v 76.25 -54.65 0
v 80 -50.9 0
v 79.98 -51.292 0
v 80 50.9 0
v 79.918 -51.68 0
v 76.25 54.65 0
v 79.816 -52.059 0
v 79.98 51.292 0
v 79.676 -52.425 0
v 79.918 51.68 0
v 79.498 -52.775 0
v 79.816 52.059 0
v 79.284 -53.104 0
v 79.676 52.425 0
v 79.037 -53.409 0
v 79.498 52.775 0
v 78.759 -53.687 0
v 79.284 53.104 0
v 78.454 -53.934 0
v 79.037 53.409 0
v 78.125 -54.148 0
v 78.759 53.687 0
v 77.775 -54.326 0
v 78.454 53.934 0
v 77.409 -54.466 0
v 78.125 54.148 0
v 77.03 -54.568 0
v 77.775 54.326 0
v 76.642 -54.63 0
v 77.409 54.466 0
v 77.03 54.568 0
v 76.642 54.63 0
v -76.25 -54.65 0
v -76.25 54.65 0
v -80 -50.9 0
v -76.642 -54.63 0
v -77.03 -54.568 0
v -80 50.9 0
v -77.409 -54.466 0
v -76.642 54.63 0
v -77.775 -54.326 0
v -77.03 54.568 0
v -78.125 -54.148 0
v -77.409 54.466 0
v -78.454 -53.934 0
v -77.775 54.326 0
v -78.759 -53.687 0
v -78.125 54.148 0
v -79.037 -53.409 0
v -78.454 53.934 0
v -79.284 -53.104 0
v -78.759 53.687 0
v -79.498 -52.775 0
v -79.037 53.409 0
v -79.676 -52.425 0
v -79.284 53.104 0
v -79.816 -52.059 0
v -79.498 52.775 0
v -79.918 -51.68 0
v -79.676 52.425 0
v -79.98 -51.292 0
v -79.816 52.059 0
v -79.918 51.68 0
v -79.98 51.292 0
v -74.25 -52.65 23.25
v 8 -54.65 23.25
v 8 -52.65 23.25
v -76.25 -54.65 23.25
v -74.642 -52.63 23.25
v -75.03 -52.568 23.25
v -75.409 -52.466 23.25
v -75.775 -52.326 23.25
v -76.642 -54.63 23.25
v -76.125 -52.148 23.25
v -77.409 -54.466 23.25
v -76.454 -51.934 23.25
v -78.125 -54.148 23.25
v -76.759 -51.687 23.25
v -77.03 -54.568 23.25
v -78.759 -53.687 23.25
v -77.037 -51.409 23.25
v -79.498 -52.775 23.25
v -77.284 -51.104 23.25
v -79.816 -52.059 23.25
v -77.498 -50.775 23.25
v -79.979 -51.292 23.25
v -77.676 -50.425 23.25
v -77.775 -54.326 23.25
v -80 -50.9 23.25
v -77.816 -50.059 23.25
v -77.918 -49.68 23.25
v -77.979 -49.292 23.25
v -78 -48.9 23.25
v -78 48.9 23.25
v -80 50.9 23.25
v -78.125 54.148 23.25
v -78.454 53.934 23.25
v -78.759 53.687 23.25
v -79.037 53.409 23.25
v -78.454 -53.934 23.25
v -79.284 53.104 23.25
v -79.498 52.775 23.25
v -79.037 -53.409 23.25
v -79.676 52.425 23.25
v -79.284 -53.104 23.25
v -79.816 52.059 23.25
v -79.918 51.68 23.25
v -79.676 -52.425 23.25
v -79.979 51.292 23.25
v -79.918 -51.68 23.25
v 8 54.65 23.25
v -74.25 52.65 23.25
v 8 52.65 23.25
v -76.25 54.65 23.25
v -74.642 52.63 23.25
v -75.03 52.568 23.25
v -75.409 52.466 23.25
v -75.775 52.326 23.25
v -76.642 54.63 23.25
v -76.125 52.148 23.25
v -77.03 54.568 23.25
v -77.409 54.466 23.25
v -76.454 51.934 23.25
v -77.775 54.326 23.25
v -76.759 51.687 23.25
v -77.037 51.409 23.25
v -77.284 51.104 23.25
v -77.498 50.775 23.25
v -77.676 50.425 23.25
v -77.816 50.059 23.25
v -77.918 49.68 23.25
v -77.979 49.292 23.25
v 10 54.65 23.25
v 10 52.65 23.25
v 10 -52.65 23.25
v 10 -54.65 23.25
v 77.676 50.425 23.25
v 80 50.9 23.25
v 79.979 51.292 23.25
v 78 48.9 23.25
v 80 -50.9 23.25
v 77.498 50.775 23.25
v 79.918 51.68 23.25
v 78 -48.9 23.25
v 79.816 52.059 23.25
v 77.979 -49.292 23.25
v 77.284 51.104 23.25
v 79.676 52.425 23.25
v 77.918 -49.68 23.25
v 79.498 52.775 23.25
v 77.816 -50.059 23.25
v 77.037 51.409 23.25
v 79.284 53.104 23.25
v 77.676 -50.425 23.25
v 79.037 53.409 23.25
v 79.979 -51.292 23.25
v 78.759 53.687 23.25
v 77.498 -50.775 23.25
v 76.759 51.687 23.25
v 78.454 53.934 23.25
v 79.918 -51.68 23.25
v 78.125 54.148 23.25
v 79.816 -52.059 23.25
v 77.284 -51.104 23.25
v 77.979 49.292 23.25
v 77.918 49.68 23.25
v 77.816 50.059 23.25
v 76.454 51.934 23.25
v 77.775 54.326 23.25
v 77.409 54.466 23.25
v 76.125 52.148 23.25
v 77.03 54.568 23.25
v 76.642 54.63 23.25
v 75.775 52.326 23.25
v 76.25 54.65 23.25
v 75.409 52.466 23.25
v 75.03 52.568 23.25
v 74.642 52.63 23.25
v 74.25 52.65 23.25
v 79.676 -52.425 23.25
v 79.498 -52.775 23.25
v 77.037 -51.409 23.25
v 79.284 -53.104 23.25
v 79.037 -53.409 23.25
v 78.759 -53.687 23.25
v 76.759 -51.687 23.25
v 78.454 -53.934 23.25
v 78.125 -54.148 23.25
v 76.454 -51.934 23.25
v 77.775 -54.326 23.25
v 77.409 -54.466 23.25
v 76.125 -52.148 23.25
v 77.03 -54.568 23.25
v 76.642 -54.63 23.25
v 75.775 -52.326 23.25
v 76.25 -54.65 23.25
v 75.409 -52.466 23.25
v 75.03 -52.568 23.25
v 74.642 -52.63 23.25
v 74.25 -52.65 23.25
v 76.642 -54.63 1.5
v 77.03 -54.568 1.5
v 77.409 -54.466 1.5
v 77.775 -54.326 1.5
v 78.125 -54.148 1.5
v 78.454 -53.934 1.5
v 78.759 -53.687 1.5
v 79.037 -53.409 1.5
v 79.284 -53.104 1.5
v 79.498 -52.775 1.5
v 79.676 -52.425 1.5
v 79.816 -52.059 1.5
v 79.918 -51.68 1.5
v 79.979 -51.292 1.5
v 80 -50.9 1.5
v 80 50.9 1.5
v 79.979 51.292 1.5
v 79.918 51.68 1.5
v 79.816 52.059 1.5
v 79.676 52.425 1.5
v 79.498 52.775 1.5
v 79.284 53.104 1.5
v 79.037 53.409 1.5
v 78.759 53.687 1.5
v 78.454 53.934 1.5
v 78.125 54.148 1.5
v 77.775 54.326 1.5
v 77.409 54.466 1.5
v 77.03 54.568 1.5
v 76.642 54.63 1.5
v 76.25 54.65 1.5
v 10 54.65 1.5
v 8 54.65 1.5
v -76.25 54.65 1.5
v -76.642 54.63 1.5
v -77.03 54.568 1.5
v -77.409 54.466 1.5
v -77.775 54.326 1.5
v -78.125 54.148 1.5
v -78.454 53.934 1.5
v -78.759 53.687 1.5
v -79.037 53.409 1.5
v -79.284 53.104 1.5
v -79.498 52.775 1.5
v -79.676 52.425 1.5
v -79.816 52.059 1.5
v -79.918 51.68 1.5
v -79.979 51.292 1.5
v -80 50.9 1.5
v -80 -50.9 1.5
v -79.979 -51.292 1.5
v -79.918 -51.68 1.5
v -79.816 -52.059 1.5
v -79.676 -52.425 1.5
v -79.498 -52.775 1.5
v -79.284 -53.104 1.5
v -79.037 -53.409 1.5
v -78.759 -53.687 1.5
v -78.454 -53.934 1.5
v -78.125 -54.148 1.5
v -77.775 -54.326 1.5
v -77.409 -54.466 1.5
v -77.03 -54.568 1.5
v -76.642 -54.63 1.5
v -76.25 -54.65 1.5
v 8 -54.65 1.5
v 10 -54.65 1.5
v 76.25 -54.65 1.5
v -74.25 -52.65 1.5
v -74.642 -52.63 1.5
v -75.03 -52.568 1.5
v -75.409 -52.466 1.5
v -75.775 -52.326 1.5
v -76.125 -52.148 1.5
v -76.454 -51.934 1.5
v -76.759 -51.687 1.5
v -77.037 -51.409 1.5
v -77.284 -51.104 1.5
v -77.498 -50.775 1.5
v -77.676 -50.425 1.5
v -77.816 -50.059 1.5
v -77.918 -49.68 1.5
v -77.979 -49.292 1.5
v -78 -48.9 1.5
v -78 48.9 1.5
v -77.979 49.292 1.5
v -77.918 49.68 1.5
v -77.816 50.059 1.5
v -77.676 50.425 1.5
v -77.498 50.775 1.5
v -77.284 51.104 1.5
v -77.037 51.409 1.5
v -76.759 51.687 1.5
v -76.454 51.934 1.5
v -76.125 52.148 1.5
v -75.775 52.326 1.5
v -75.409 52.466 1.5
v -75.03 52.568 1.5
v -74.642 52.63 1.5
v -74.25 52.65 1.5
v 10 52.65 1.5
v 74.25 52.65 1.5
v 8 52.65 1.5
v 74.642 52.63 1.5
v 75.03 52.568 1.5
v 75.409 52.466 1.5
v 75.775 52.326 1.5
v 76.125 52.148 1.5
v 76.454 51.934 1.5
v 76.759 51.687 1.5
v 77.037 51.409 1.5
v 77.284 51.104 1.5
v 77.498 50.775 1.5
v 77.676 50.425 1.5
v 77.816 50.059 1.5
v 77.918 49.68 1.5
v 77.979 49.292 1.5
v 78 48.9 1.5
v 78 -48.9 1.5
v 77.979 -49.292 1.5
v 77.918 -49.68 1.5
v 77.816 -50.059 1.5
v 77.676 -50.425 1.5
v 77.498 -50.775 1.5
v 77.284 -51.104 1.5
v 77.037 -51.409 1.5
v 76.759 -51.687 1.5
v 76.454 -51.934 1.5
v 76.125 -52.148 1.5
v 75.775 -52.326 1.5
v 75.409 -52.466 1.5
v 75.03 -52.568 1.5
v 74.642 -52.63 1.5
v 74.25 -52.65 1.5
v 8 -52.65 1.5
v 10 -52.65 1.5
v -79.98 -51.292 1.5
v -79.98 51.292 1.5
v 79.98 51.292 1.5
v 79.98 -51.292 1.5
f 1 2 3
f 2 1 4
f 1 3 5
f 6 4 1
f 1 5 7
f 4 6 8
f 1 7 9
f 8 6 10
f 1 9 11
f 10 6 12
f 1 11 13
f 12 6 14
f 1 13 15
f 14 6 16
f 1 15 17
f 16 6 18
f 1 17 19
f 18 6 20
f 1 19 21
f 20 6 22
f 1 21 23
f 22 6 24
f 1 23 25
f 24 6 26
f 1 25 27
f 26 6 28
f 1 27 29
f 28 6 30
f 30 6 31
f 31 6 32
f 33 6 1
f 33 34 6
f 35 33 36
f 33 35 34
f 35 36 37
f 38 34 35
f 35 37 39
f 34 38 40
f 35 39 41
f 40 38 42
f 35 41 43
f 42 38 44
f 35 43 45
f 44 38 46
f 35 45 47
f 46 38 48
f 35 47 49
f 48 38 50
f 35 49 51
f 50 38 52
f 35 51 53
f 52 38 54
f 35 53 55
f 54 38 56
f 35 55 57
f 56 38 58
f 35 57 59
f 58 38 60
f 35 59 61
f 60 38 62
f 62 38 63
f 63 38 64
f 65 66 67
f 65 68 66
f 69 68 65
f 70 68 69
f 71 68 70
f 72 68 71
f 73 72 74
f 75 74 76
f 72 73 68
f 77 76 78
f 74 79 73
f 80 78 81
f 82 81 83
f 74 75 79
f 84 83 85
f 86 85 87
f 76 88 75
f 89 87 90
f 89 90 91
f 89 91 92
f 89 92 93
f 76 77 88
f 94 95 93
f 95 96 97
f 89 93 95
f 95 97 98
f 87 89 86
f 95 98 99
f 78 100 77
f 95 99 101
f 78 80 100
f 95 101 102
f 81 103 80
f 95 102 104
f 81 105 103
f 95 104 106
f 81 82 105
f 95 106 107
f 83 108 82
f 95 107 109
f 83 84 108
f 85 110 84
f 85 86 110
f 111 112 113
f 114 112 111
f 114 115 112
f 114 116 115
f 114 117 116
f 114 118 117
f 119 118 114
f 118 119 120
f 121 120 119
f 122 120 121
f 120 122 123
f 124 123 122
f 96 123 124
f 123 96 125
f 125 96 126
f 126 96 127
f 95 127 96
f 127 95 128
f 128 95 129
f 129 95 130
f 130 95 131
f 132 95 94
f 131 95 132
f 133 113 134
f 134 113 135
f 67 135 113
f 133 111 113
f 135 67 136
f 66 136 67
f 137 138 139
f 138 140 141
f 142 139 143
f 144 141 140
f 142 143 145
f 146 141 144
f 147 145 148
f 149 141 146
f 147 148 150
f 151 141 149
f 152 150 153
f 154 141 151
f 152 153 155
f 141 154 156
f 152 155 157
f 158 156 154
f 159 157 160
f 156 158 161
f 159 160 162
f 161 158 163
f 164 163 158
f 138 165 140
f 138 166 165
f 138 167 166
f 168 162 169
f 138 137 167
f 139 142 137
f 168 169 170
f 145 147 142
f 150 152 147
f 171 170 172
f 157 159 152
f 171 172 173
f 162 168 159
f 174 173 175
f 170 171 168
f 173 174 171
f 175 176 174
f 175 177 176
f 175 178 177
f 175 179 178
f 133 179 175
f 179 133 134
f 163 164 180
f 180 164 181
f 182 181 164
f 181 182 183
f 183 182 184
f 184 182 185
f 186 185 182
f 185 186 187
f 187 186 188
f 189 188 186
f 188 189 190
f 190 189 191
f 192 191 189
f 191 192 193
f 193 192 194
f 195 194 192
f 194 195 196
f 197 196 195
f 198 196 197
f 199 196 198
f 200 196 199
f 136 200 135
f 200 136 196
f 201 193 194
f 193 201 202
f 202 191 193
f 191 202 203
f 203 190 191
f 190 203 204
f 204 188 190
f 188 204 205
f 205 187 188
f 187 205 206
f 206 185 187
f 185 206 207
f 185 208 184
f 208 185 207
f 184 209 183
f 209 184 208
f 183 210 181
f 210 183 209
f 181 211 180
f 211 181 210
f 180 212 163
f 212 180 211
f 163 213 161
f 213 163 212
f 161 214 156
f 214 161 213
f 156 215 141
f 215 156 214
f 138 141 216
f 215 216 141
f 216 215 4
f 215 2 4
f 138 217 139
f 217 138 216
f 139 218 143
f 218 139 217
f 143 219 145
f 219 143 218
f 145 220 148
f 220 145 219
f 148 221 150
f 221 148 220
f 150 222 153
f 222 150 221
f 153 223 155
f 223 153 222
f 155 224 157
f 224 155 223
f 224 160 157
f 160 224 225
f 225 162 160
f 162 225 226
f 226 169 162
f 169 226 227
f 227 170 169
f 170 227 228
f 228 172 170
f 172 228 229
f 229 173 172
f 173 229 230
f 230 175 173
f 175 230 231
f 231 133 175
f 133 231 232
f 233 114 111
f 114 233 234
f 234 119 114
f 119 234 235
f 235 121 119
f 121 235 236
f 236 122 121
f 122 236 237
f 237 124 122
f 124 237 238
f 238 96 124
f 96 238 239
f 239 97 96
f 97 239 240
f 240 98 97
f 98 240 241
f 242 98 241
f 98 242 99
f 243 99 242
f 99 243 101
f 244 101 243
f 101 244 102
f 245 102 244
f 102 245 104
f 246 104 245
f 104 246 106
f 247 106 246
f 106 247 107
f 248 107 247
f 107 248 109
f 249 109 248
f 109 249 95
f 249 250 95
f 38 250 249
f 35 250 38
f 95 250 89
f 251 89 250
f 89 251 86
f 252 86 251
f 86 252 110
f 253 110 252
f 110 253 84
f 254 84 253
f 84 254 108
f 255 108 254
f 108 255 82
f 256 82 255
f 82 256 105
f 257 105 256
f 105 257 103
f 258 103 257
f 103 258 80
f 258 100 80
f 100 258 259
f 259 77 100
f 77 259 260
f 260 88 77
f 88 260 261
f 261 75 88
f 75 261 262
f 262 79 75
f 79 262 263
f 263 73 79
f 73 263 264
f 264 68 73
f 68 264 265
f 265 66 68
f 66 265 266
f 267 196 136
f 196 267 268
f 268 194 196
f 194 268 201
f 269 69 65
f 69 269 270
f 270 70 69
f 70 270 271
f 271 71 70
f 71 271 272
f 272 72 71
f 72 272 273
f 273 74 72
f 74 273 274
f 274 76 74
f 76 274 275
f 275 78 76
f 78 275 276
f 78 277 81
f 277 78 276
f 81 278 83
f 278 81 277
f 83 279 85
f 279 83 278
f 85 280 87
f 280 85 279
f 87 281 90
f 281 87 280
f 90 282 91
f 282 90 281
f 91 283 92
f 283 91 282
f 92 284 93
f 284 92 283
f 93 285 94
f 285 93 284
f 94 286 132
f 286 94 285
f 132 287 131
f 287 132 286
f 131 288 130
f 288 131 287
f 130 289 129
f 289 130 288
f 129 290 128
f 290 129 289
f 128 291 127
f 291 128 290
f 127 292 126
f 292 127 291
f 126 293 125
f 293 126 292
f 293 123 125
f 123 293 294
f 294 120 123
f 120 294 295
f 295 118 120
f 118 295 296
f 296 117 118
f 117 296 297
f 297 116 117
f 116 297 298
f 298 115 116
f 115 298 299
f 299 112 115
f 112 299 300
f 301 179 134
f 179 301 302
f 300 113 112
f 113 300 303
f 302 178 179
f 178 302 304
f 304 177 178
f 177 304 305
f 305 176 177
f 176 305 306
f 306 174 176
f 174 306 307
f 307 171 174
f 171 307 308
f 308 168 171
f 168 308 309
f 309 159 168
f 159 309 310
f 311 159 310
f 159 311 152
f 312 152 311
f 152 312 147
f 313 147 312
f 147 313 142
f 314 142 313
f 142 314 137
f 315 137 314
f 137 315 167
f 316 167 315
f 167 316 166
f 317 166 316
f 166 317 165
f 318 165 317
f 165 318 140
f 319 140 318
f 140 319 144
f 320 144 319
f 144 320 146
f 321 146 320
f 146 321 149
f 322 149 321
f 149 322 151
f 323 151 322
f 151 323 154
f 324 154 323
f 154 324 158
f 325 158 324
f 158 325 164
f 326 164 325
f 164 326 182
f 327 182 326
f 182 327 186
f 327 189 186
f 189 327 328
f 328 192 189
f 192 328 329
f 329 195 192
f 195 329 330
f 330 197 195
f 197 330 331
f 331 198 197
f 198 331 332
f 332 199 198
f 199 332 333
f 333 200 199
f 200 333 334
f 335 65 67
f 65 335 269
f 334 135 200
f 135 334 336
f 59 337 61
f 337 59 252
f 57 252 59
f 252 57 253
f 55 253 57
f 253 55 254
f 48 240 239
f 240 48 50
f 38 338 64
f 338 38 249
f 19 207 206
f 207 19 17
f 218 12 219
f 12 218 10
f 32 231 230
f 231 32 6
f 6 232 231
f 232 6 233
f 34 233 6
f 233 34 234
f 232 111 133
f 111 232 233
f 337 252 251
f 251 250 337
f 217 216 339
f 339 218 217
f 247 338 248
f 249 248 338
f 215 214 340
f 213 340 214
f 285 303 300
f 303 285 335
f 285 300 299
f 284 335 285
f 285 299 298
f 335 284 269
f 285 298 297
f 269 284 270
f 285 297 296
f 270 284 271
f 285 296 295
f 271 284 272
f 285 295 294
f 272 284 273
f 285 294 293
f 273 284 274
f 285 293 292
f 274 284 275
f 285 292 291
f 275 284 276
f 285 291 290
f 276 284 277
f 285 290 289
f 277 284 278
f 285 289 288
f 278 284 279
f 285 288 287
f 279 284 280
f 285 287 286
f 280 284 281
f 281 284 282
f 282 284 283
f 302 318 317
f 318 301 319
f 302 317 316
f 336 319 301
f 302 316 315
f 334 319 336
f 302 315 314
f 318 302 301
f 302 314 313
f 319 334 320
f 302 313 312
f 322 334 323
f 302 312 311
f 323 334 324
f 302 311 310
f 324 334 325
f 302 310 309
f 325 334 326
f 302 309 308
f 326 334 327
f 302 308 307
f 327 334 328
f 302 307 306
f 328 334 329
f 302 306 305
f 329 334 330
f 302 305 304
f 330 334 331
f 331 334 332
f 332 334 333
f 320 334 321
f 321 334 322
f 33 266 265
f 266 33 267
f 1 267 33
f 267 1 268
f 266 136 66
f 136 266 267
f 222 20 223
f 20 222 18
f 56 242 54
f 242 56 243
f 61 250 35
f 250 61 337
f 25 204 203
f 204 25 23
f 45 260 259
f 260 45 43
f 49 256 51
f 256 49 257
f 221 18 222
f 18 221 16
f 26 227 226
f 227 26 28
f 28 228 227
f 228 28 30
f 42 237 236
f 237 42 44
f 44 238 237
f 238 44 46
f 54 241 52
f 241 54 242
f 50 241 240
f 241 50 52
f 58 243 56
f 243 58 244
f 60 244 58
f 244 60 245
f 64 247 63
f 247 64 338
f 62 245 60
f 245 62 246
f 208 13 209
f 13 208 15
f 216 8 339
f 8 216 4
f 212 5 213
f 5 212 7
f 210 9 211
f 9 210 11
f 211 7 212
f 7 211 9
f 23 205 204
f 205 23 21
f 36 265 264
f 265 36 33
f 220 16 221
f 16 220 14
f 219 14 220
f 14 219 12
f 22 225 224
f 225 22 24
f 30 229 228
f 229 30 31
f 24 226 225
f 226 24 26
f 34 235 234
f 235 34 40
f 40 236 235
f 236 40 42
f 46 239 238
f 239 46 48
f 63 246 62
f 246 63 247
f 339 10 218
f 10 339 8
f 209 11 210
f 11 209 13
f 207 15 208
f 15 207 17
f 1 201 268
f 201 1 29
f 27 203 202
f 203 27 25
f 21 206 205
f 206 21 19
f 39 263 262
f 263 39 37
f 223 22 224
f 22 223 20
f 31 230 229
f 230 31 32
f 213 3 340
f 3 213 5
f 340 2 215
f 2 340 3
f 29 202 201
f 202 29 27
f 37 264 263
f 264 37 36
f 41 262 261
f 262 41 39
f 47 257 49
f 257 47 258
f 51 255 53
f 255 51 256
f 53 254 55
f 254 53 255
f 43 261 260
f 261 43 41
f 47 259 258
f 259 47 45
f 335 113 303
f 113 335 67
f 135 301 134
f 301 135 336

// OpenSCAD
/* huge-bin.scad
 *
 * Copyright (C) Robert B. Ross, 2016
 *
 * This software is released under the Creative Commons
 * Attribution-ShareAlike 4.0 International Public License.
 */

include <bintools.scad>

/* Harbor Freight Large
 * 46.5mm tall
 * 48.6mm tall with legs
 * 109.3mm wide
 * 80mm length
 *
 * Note: doubling this, half height
 */

roundShapedBox(xDimTop=160, yDimTop=109.3, xDimBottom=160,
               yDimBottom=109.3, ht=46.5/2, wallThick=2.0);
roundBoxBottom(xDim=160,yDim=109.3,ht=1.5);

translate([8,-109.3/2,0]) cube([2,109.3,46.5/2]);

/*
 * Local variables:
 *  mode: C
 *  c-indent-level: 3
 *  c-basic-offset: 3
 * End:
 *
 * vim: ts=8 sts=3 sw=3 expandtab
 */
